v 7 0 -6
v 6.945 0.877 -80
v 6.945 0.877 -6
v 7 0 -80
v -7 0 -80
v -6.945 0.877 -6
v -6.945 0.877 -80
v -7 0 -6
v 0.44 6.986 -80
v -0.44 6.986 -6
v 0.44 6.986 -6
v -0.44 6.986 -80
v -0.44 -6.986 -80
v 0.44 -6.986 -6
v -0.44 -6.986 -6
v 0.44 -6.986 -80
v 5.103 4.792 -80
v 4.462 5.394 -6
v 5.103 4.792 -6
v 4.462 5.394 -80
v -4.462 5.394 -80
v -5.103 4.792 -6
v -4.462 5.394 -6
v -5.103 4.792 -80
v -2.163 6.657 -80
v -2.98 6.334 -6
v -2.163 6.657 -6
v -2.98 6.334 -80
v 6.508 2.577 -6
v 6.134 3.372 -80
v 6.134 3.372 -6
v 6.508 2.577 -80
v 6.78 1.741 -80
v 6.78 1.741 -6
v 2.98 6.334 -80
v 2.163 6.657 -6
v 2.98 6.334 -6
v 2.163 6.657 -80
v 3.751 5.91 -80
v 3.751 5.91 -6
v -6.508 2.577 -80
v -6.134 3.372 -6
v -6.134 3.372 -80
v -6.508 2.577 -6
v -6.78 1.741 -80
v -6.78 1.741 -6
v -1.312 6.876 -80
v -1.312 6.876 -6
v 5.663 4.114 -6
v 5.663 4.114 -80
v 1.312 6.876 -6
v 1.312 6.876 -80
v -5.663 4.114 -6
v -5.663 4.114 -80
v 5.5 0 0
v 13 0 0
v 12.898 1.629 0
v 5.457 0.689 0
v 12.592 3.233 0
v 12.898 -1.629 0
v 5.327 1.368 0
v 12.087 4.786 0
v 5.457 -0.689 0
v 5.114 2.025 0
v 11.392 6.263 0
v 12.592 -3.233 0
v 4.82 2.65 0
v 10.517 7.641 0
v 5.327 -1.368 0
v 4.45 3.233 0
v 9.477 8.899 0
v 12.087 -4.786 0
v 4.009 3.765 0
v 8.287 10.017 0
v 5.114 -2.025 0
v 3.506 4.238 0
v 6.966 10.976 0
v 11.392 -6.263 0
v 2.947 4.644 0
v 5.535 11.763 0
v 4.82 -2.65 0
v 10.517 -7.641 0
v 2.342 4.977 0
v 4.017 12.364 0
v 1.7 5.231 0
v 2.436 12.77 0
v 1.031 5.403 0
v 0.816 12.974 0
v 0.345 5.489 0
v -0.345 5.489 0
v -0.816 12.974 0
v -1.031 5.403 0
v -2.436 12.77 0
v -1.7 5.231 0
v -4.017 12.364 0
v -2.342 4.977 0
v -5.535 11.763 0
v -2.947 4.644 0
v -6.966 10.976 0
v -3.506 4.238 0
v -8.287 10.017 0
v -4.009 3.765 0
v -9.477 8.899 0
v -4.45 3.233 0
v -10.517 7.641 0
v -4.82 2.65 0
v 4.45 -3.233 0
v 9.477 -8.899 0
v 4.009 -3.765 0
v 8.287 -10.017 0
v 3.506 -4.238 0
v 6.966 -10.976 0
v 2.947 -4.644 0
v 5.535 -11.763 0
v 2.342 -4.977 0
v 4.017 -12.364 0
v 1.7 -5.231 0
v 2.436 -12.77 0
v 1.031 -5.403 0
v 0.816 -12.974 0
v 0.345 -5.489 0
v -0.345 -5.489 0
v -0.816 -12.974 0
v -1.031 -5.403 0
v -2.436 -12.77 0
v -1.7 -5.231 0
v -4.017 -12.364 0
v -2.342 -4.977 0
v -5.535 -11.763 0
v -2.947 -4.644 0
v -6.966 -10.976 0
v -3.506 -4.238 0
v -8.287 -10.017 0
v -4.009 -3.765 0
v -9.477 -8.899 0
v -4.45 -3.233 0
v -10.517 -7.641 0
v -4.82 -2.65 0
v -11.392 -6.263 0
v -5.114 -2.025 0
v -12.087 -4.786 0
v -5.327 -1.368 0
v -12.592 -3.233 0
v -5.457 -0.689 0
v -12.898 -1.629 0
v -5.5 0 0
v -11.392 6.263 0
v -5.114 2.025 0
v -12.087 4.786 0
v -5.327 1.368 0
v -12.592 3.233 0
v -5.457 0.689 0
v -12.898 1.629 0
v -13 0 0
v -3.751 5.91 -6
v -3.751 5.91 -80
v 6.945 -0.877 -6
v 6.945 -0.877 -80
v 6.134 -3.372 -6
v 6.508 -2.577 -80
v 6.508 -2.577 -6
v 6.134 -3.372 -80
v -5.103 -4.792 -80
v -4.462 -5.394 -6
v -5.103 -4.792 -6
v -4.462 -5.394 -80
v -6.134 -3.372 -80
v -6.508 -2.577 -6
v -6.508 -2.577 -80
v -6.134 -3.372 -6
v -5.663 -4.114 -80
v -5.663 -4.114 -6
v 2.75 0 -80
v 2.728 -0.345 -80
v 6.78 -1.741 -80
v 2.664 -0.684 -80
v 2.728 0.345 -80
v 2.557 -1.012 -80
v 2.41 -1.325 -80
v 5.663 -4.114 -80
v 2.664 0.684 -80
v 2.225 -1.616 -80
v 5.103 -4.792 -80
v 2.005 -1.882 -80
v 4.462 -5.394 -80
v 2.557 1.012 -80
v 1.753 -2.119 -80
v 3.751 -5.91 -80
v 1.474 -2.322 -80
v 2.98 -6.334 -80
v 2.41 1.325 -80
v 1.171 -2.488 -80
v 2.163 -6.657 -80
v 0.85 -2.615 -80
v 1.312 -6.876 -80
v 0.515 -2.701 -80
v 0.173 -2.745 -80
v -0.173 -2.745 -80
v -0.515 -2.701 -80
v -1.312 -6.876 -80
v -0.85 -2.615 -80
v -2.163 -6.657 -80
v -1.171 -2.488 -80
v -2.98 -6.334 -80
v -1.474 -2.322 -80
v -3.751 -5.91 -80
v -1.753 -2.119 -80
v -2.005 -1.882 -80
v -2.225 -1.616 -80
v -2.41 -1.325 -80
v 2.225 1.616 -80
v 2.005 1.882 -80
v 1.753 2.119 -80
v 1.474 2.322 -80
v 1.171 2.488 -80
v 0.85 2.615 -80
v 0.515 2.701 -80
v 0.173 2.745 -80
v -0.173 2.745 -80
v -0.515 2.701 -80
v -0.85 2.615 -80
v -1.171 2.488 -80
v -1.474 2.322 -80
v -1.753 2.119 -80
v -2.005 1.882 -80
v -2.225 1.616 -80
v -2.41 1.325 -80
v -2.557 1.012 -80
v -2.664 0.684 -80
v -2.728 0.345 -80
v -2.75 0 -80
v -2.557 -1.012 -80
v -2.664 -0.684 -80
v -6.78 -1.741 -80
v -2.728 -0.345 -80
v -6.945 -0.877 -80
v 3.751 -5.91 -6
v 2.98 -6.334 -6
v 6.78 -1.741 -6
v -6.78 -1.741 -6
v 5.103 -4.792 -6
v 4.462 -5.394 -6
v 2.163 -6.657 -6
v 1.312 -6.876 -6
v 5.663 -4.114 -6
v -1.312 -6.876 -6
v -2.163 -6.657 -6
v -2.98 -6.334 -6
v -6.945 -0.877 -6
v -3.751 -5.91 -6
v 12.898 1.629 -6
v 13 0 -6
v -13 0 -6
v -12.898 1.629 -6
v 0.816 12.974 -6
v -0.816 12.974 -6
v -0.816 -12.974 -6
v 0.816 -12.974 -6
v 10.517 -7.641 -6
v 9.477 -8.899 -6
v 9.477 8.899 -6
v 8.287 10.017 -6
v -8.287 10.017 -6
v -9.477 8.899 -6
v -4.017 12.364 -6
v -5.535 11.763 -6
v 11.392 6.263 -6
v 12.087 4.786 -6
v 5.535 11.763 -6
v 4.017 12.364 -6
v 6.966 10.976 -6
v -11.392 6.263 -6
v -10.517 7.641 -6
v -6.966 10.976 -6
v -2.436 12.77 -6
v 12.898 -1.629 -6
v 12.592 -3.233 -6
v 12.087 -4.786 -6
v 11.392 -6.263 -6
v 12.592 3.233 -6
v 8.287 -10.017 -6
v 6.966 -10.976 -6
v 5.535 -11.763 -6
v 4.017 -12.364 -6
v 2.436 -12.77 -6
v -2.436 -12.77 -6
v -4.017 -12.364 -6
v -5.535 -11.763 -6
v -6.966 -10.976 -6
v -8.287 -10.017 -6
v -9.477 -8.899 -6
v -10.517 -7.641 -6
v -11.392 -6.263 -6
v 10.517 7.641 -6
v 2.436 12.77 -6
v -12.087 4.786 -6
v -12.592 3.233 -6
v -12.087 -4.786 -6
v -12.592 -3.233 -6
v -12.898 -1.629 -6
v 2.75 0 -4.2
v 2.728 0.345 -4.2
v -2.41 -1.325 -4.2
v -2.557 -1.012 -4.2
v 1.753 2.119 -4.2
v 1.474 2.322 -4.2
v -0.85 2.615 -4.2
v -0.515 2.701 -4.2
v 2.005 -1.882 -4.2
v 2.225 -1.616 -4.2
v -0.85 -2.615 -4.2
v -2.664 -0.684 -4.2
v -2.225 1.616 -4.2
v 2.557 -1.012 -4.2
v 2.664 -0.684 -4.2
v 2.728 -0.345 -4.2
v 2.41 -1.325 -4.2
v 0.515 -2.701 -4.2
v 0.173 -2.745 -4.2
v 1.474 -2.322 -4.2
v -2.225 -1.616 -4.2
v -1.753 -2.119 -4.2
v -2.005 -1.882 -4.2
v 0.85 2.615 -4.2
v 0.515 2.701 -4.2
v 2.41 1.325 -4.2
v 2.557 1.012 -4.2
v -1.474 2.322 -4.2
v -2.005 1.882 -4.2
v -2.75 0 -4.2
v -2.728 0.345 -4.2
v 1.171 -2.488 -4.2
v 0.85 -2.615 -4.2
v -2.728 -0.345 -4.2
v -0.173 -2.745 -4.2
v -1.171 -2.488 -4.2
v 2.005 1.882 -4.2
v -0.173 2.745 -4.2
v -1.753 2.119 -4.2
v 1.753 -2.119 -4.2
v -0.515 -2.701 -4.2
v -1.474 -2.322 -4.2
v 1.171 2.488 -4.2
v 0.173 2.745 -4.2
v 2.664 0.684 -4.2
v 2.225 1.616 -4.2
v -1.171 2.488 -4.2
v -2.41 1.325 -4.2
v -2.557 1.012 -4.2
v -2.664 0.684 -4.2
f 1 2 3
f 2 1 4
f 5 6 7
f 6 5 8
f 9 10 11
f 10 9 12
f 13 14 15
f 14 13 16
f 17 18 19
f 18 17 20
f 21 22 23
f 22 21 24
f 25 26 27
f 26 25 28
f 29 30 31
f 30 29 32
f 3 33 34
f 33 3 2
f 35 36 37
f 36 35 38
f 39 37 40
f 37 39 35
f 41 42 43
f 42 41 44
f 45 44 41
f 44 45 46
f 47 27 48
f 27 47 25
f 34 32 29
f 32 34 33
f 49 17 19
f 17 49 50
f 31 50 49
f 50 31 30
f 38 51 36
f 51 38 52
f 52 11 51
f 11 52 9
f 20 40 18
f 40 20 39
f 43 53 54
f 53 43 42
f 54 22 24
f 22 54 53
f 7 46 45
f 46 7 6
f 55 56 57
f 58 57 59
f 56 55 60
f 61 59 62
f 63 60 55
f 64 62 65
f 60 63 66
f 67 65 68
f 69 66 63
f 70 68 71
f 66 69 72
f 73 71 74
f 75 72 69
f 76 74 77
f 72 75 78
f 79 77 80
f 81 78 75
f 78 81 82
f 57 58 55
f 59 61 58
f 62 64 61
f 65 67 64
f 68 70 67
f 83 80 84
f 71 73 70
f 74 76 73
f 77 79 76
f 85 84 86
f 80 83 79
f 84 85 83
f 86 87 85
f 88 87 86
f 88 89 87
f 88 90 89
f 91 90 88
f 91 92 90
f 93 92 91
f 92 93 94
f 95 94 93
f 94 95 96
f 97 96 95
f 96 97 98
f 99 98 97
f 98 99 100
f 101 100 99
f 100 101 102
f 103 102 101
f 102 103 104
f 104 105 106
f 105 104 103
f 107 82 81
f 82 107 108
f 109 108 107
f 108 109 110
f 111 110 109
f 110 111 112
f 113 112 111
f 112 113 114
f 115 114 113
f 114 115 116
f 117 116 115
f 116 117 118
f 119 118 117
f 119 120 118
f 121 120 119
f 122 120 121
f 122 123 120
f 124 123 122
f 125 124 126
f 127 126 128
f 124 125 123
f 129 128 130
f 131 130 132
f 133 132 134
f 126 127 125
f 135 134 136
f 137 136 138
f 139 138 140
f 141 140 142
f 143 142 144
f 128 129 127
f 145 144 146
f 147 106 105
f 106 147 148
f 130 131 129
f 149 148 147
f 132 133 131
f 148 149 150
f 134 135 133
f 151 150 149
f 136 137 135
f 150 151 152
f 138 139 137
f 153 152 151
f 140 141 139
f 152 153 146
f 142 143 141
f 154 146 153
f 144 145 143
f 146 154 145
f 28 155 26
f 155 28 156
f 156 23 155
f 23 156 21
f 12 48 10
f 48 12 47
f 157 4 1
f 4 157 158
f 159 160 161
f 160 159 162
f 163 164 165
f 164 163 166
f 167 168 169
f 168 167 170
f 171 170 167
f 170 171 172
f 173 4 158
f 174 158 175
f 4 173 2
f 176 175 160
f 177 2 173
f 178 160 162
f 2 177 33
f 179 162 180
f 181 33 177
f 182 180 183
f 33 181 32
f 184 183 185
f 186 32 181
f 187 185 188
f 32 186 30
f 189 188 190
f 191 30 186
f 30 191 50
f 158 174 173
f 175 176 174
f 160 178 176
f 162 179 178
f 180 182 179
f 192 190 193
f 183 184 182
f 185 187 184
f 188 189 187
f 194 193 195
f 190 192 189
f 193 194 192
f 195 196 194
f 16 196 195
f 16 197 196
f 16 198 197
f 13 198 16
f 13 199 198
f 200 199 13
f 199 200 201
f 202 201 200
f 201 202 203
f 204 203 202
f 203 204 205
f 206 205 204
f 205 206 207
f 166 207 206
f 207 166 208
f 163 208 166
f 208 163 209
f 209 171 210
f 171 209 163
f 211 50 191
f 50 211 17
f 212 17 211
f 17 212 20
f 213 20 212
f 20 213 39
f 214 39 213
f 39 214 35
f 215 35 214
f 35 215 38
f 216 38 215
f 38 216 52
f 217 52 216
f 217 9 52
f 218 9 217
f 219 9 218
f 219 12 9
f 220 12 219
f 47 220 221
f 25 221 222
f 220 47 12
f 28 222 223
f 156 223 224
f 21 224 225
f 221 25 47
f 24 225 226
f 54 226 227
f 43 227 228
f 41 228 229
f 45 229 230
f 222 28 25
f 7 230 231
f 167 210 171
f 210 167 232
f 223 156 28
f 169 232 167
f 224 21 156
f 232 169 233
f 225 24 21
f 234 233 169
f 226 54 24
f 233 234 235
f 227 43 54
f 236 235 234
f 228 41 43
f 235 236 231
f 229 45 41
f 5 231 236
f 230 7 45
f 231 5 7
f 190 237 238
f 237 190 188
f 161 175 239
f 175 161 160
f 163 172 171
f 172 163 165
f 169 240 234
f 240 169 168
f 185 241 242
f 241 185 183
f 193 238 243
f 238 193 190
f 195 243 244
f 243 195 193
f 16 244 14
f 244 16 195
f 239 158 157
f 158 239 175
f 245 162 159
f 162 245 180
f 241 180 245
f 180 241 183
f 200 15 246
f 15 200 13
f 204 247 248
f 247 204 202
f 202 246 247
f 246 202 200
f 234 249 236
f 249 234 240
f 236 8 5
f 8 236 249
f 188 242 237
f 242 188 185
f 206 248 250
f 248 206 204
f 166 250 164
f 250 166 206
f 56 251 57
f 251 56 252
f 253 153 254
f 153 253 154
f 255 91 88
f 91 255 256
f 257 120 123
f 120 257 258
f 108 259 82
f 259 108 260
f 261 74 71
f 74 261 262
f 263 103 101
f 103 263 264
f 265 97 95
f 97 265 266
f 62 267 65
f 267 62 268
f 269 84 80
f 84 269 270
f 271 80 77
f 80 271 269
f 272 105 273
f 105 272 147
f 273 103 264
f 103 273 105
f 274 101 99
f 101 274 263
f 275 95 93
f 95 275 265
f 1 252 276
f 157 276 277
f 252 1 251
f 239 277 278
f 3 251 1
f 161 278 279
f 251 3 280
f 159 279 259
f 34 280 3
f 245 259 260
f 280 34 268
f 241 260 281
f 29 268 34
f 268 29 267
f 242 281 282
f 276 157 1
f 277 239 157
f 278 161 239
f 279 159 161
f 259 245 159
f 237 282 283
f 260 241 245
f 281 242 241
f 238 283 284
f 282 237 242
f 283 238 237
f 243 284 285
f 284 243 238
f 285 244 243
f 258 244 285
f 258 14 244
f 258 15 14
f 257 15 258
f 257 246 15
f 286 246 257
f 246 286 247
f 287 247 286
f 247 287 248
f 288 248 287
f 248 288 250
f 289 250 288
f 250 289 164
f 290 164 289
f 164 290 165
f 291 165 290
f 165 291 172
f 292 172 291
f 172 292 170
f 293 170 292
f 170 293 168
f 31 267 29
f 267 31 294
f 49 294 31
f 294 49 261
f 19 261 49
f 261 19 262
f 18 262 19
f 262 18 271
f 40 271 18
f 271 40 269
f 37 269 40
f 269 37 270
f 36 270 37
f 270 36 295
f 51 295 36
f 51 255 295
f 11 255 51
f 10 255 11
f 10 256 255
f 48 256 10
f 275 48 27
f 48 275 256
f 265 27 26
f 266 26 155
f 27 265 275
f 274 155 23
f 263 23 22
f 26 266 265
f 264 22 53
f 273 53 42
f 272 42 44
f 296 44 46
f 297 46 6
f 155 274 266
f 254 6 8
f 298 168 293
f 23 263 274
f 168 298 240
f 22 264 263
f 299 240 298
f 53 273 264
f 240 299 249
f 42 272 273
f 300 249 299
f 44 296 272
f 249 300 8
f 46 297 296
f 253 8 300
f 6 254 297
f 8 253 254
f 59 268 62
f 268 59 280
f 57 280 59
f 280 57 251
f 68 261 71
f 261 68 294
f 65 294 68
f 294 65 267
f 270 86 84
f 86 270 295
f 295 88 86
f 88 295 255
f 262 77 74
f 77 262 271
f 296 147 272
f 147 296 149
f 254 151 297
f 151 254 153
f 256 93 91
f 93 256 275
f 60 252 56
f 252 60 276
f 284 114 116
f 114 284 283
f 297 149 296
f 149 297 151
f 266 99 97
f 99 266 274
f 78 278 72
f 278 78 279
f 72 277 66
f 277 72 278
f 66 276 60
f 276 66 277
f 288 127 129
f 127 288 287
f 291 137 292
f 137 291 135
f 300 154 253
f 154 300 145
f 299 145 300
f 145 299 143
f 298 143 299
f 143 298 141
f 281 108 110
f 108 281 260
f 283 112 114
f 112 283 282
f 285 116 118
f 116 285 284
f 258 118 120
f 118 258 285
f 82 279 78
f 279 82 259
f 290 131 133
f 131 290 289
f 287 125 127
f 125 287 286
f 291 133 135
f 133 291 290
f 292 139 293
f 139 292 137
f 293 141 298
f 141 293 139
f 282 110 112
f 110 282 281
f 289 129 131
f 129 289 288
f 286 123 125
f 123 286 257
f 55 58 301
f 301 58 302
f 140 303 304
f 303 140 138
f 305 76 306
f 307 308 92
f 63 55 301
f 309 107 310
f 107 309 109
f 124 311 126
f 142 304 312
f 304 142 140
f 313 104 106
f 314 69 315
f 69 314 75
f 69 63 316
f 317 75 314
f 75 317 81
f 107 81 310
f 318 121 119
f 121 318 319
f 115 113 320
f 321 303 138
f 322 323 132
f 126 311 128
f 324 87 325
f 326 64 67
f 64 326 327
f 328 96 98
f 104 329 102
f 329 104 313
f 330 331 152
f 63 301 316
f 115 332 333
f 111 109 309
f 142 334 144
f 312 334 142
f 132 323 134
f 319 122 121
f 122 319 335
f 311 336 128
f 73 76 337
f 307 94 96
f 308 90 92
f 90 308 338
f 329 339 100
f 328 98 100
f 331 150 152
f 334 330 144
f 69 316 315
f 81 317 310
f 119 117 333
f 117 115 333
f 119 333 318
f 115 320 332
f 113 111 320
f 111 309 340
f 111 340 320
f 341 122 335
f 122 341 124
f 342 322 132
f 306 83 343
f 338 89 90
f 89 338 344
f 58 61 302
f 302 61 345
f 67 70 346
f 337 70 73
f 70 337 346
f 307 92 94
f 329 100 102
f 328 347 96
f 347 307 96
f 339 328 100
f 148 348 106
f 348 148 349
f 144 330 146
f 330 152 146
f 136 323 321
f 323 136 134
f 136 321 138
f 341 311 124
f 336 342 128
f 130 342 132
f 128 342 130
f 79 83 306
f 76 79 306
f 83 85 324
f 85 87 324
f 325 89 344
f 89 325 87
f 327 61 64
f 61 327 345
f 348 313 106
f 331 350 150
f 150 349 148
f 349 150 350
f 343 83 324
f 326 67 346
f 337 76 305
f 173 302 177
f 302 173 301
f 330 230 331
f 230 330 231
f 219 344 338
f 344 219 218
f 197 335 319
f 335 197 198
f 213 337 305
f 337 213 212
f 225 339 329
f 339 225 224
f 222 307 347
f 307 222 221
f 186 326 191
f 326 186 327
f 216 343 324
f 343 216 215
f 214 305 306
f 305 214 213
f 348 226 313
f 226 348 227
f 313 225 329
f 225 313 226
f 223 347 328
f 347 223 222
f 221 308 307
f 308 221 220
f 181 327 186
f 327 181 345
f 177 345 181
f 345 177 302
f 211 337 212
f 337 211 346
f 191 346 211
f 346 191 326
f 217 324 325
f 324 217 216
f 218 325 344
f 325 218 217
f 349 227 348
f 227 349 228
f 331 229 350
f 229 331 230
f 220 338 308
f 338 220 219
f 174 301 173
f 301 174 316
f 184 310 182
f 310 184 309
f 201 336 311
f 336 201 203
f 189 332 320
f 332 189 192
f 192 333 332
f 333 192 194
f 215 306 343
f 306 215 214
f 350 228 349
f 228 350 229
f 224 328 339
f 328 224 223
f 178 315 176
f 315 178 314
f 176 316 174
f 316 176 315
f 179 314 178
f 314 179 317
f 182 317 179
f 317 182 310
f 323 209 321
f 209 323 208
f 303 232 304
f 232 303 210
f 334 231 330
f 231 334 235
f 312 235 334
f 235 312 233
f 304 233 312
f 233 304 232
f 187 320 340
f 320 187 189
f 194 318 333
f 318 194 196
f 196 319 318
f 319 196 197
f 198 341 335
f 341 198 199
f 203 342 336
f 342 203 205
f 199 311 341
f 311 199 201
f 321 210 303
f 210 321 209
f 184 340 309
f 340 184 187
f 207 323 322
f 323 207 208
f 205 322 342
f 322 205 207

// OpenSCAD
$fn = 50;


difference() {
	union() {
		translate(v = [0, 0, -80.0000000000]) {
			cylinder(h = 80, r = 7.0000000000);
		}
		translate(v = [0, 0, -6.0000000000]) {
			cylinder(h = 6, r = 13.0000000000);
		}
	}
	union() {
		translate(v = [0, 0, 0]) {
			rotate(a = [0, 0, 0]) {
				difference() {
					union() {
						#translate(v = [0, 0, -80.0000000000]) {
							cylinder(h = 80, r = 2.2500000000);
						}
						#translate(v = [0, 0, -4.2000000000]) {
							cylinder(h = 4.2000000000, r1 = 2.7500000000, r2 = 5.5000000000);
						}
						#translate(v = [0, 0, -80.0000000000]) {
							cylinder(h = 80, r = 2.7500000000);
						}
						#translate(v = [0, 0, -80.0000000000]) {
							cylinder(h = 80, r = 2.2500000000);
						}
					}
					union();
				}
			}
		}
	}
}
